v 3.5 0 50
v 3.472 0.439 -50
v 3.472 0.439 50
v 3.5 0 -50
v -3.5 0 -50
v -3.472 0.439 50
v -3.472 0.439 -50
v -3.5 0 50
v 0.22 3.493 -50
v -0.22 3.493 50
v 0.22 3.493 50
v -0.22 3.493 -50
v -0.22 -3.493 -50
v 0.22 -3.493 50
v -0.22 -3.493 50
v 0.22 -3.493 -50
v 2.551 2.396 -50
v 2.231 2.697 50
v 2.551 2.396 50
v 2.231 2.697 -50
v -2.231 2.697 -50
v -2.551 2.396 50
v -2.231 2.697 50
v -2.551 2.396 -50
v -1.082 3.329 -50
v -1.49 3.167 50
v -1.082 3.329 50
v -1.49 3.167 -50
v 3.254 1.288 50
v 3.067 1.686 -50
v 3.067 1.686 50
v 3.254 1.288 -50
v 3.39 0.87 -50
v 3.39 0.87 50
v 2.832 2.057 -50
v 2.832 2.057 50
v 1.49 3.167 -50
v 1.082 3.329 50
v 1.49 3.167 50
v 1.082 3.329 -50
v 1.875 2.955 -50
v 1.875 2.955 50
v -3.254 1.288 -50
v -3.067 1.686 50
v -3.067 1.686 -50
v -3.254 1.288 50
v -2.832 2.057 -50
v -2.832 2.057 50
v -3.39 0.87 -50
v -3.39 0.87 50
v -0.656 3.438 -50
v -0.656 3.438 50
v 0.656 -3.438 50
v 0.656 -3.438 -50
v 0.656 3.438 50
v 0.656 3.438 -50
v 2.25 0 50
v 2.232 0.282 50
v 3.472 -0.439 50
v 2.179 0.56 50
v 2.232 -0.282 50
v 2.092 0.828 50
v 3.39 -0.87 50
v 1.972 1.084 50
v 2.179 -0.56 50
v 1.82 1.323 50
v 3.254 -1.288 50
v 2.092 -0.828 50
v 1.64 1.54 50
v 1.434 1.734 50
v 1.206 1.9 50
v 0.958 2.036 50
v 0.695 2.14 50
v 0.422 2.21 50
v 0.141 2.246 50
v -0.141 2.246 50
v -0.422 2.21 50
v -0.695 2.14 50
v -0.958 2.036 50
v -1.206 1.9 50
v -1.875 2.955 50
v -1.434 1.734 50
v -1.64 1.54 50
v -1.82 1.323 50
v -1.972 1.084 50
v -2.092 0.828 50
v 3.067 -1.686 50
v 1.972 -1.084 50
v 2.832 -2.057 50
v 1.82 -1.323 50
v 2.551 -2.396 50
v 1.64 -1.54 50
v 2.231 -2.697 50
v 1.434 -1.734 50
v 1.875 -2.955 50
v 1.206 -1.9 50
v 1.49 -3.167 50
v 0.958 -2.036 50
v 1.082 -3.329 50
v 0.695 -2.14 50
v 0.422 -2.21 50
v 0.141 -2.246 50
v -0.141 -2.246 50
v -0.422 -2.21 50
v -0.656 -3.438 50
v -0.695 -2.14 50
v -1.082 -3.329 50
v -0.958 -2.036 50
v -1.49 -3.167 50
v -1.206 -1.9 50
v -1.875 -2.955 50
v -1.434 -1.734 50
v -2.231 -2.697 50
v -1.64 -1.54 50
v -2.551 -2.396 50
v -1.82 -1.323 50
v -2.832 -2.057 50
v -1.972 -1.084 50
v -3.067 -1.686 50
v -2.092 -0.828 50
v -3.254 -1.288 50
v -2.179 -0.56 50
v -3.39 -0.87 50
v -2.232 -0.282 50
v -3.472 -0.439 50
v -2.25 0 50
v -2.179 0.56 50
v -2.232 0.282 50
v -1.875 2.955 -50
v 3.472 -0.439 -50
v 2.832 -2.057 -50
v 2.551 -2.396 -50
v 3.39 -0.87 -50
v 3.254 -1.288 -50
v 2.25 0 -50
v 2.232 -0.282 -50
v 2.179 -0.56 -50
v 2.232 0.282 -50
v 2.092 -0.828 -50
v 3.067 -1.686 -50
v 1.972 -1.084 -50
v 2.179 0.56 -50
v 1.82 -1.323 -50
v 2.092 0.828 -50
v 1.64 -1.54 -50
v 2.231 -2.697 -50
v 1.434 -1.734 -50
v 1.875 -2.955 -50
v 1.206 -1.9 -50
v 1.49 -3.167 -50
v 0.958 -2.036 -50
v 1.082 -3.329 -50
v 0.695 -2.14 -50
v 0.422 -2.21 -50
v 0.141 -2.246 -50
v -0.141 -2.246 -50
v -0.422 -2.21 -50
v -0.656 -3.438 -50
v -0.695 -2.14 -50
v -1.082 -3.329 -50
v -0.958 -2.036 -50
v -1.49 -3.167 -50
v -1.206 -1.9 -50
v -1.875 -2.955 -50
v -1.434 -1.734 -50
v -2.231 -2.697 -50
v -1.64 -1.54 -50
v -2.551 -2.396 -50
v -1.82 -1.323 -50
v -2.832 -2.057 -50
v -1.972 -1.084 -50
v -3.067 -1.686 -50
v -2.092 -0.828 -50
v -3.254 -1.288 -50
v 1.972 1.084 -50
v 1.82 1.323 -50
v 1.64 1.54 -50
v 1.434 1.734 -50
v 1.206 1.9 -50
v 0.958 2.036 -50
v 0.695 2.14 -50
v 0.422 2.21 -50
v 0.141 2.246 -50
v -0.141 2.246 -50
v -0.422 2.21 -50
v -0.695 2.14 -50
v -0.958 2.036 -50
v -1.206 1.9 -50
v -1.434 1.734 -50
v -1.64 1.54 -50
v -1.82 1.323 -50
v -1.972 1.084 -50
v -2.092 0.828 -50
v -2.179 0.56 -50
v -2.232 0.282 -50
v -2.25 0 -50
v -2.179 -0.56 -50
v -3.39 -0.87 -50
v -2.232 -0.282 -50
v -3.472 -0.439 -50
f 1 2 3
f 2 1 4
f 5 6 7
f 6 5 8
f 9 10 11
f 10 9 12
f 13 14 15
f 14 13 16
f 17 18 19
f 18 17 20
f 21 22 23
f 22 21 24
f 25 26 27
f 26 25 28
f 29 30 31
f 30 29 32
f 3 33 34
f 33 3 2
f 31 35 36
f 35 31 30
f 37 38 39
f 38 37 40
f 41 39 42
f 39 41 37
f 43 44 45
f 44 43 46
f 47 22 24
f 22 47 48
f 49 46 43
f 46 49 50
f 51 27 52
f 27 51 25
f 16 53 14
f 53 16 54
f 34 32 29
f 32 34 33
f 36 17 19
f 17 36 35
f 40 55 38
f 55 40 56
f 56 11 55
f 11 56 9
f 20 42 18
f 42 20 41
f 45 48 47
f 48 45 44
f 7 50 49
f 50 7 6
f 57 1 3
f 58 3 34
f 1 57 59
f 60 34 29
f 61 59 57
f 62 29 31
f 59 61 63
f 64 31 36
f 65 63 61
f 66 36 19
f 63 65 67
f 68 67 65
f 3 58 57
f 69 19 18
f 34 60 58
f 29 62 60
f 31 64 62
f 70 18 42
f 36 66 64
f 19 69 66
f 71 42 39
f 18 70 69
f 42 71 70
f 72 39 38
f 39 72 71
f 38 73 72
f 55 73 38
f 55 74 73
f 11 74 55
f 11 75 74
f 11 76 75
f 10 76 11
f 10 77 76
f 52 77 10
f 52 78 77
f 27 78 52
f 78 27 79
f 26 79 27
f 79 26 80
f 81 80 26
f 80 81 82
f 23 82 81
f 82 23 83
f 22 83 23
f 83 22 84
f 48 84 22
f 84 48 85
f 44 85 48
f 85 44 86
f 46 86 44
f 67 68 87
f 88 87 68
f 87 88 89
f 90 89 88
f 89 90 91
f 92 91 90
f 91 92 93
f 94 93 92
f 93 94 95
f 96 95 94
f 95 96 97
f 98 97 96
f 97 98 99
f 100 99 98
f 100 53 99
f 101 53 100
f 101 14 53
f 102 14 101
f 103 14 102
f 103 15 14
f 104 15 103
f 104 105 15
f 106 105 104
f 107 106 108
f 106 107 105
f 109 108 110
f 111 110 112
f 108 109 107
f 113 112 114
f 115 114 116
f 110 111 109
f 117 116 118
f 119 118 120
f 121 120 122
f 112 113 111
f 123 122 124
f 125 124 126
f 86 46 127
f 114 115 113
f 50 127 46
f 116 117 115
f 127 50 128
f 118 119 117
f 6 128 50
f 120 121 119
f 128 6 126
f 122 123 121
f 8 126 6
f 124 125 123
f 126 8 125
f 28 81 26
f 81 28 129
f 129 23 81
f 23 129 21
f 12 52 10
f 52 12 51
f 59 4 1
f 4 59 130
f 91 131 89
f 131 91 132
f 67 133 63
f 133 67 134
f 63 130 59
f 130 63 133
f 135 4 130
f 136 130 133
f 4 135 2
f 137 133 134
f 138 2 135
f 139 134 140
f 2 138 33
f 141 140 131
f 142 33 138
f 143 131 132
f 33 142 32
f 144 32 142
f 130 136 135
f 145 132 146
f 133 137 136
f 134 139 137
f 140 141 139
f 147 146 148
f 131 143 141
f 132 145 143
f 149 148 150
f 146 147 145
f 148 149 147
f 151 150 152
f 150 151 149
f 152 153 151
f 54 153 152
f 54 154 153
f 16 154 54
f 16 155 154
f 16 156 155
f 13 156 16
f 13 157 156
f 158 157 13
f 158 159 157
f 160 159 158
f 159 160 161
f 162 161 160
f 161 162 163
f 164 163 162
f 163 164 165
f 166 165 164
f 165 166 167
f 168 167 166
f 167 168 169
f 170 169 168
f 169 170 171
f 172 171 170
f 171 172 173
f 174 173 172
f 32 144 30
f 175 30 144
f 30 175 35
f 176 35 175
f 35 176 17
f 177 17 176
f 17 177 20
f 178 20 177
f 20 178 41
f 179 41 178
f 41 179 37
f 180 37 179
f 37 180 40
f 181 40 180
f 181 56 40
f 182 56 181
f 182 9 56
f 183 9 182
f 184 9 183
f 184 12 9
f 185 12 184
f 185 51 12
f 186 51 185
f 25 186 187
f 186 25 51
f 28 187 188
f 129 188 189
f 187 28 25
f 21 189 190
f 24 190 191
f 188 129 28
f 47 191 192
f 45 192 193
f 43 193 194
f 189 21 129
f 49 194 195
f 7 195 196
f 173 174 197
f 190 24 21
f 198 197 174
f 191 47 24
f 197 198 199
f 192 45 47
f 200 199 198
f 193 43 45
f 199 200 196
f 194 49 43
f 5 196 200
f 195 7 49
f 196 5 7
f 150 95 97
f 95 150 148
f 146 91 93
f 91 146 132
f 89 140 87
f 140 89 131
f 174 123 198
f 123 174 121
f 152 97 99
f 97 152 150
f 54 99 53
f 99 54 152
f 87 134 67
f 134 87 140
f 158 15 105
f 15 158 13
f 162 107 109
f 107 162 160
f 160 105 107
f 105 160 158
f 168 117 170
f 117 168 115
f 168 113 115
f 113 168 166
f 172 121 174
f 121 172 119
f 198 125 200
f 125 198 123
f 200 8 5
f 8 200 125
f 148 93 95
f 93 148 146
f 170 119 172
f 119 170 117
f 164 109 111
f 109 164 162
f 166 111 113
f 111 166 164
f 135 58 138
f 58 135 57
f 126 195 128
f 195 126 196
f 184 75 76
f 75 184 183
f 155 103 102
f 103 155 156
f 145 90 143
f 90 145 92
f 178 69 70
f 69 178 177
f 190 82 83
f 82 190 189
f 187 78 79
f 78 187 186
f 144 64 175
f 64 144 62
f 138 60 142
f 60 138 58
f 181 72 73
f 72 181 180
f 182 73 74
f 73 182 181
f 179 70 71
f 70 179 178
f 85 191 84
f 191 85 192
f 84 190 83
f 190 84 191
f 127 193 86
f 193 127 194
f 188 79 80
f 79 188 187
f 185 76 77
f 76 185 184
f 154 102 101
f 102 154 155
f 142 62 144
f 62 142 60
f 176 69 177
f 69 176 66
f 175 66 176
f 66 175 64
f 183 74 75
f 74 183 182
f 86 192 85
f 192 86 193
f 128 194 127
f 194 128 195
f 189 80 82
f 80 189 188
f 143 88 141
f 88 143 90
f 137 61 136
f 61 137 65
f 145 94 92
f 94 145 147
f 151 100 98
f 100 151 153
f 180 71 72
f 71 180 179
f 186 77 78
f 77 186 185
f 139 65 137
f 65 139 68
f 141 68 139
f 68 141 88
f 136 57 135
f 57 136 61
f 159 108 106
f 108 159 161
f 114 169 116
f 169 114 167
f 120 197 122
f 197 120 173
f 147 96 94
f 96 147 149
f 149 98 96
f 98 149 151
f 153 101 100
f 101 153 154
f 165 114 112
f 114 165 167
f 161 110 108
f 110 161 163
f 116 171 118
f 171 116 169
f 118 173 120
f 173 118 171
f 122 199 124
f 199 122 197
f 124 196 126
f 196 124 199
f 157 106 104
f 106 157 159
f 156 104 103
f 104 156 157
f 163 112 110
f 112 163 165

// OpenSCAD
$fn = 50;


difference() {
	union() {
		translate(v = [0, 0, -50.0000000000]) {
			cylinder(h = 100, r = 3.5000000000);
		}
	}
	union() {
		translate(v = [0, 0, -100.0000000000]) {
			cylinder(h = 200, r = 2.2500000000);
		}
	}
}
